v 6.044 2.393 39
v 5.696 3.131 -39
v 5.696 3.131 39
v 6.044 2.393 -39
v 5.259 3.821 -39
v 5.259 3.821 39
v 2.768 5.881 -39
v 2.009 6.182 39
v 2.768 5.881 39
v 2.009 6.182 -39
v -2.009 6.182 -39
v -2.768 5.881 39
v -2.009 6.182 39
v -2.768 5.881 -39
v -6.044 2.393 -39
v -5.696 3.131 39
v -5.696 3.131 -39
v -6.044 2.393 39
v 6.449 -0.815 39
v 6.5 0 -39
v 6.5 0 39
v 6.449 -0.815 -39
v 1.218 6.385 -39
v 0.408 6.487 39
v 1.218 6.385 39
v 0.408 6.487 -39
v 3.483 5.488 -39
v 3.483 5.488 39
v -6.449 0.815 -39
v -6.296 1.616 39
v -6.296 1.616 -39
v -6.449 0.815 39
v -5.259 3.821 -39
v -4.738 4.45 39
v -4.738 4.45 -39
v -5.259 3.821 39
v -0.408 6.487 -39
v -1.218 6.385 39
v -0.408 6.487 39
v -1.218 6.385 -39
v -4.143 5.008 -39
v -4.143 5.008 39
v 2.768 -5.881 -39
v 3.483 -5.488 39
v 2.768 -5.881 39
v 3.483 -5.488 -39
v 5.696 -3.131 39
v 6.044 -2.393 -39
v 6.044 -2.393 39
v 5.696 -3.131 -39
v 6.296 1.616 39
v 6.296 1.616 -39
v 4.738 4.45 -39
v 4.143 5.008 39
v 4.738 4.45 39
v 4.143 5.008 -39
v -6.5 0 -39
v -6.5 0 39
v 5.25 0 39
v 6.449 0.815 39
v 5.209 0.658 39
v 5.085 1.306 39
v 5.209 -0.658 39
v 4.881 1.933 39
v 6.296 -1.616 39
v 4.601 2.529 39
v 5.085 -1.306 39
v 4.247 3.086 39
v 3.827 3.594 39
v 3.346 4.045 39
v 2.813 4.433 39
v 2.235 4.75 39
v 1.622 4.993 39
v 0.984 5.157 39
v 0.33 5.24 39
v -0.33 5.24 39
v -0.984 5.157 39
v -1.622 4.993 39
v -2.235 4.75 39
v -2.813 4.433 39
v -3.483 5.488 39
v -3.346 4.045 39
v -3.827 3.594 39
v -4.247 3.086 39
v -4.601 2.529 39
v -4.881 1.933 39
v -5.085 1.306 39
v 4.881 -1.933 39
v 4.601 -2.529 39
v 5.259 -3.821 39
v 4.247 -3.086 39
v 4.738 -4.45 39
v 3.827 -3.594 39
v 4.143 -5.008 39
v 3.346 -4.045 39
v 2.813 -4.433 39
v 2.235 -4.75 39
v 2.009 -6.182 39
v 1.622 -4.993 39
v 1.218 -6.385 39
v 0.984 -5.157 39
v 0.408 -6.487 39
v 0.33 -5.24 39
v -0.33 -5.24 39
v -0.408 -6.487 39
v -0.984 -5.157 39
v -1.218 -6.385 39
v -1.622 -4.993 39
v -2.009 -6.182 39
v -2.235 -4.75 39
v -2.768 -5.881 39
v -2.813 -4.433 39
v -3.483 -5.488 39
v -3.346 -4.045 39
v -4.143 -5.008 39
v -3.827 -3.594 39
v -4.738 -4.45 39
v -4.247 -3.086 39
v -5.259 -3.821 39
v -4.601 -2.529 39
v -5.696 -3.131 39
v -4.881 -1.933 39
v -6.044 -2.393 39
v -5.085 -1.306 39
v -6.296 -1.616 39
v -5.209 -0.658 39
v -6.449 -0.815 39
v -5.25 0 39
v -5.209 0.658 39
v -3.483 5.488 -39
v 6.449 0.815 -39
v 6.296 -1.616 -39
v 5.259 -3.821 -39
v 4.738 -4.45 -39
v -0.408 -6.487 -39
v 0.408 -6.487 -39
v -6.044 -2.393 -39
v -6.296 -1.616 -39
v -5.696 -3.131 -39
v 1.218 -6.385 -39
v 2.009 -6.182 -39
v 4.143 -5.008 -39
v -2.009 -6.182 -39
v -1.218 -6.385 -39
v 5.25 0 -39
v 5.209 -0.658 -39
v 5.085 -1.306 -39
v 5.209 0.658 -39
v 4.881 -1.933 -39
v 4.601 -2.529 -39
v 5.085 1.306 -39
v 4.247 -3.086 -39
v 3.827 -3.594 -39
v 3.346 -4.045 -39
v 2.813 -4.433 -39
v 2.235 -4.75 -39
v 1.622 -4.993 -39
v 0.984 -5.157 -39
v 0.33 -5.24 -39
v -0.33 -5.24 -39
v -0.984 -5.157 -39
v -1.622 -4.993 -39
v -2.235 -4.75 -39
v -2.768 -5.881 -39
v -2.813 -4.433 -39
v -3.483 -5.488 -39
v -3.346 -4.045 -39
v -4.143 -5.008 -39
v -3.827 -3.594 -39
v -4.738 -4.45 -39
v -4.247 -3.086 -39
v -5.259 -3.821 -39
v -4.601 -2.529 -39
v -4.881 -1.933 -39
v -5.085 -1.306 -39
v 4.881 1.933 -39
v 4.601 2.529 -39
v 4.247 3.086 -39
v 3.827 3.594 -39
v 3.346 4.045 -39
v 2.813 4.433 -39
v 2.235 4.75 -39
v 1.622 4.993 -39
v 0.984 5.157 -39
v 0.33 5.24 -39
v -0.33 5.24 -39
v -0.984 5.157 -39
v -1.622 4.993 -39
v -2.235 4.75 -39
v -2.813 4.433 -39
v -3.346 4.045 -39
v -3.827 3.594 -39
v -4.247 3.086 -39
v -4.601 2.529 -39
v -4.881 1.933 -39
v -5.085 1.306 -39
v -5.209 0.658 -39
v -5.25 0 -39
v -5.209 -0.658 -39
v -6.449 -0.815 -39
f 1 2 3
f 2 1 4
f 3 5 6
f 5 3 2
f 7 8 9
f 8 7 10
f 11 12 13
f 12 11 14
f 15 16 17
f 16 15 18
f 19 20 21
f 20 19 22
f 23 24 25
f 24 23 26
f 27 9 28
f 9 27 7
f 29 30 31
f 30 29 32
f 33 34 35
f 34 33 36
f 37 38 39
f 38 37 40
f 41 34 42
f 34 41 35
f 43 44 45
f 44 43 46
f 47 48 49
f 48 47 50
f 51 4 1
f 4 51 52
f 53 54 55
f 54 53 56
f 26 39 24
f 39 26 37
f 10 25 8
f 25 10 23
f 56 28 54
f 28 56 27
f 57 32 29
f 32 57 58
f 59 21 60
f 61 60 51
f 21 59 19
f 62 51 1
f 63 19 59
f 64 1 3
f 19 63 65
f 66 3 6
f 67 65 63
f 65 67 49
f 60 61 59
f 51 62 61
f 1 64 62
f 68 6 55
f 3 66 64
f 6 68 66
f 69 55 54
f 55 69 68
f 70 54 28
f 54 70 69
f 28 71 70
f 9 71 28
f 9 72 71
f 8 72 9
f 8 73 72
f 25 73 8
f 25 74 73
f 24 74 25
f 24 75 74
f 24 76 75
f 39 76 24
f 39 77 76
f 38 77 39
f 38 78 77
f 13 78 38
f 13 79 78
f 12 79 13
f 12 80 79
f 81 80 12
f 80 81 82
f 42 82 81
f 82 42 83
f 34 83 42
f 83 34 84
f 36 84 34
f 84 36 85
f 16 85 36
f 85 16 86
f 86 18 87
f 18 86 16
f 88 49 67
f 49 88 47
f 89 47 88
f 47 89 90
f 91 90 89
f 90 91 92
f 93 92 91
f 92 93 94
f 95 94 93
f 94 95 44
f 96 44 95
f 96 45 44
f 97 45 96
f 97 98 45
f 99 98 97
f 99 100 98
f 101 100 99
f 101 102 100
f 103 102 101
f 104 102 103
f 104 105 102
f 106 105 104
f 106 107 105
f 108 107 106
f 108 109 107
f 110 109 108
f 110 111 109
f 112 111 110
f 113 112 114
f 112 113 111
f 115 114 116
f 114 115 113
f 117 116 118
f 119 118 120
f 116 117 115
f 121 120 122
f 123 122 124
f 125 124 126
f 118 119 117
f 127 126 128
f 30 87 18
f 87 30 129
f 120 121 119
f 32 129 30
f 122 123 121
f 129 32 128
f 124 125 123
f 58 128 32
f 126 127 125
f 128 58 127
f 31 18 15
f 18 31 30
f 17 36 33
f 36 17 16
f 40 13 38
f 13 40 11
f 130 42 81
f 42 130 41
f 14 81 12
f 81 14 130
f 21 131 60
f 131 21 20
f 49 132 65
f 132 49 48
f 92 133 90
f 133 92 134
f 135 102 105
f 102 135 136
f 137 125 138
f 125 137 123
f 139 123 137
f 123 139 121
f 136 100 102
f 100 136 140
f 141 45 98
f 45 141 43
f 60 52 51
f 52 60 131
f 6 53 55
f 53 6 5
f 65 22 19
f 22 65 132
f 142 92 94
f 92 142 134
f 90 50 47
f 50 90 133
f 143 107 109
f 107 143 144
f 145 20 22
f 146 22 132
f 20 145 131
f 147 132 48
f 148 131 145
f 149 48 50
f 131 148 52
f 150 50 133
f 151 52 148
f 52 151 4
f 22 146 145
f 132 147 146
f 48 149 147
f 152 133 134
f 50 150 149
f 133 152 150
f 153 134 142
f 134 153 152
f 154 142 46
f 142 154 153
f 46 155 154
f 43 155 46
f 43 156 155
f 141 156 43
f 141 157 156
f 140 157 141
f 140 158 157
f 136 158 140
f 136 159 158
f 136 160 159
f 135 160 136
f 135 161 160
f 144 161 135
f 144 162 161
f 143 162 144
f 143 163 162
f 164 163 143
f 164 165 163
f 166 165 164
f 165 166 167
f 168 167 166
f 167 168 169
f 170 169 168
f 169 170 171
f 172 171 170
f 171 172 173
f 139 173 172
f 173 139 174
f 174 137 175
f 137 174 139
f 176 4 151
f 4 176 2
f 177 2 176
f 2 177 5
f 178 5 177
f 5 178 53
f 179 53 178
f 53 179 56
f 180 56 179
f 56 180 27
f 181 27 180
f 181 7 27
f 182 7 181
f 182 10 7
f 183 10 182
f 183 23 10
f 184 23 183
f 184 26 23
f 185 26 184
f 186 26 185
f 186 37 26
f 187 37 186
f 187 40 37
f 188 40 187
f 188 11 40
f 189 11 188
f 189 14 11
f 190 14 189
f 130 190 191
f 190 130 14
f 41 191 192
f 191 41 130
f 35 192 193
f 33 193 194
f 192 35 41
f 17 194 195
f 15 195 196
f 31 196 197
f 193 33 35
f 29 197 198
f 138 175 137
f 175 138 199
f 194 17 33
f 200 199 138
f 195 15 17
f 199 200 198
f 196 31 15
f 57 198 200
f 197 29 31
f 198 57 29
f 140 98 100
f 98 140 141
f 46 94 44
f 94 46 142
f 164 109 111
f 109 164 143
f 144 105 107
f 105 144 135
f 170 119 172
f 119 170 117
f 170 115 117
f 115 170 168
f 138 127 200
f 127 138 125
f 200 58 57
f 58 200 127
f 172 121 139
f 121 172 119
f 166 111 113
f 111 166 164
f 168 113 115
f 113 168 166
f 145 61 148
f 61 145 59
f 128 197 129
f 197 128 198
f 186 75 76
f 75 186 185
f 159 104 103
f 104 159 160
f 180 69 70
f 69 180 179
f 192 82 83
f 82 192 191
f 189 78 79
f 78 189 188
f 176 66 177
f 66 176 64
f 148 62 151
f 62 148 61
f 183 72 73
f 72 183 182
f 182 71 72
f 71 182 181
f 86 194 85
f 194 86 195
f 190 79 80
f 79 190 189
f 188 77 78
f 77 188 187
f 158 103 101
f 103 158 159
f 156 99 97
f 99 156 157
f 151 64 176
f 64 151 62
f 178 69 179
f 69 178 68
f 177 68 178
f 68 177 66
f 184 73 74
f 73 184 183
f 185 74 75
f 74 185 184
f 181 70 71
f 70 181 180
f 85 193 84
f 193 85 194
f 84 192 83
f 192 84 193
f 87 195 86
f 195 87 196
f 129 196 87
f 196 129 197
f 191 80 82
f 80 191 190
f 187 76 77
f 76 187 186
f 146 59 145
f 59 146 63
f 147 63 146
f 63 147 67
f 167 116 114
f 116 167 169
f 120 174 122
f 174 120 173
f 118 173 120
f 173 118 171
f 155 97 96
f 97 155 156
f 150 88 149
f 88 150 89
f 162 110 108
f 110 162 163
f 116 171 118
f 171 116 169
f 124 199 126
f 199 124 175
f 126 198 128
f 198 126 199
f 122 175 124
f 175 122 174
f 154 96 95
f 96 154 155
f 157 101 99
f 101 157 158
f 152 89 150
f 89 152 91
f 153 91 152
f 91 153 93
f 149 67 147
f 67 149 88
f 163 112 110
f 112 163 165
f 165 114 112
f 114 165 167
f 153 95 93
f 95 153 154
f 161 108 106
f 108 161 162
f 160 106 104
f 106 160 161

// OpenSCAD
$fn = 50;


difference() {
	union() {
		translate(v = [0, 0, -39.0000000000]) {
			cylinder(h = 78, r = 6.5000000000);
		}
	}
	union() {
		translate(v = [0, 0, -100.0000000000]) {
			cylinder(h = 200, r = 5.2500000000);
		}
	}
}
